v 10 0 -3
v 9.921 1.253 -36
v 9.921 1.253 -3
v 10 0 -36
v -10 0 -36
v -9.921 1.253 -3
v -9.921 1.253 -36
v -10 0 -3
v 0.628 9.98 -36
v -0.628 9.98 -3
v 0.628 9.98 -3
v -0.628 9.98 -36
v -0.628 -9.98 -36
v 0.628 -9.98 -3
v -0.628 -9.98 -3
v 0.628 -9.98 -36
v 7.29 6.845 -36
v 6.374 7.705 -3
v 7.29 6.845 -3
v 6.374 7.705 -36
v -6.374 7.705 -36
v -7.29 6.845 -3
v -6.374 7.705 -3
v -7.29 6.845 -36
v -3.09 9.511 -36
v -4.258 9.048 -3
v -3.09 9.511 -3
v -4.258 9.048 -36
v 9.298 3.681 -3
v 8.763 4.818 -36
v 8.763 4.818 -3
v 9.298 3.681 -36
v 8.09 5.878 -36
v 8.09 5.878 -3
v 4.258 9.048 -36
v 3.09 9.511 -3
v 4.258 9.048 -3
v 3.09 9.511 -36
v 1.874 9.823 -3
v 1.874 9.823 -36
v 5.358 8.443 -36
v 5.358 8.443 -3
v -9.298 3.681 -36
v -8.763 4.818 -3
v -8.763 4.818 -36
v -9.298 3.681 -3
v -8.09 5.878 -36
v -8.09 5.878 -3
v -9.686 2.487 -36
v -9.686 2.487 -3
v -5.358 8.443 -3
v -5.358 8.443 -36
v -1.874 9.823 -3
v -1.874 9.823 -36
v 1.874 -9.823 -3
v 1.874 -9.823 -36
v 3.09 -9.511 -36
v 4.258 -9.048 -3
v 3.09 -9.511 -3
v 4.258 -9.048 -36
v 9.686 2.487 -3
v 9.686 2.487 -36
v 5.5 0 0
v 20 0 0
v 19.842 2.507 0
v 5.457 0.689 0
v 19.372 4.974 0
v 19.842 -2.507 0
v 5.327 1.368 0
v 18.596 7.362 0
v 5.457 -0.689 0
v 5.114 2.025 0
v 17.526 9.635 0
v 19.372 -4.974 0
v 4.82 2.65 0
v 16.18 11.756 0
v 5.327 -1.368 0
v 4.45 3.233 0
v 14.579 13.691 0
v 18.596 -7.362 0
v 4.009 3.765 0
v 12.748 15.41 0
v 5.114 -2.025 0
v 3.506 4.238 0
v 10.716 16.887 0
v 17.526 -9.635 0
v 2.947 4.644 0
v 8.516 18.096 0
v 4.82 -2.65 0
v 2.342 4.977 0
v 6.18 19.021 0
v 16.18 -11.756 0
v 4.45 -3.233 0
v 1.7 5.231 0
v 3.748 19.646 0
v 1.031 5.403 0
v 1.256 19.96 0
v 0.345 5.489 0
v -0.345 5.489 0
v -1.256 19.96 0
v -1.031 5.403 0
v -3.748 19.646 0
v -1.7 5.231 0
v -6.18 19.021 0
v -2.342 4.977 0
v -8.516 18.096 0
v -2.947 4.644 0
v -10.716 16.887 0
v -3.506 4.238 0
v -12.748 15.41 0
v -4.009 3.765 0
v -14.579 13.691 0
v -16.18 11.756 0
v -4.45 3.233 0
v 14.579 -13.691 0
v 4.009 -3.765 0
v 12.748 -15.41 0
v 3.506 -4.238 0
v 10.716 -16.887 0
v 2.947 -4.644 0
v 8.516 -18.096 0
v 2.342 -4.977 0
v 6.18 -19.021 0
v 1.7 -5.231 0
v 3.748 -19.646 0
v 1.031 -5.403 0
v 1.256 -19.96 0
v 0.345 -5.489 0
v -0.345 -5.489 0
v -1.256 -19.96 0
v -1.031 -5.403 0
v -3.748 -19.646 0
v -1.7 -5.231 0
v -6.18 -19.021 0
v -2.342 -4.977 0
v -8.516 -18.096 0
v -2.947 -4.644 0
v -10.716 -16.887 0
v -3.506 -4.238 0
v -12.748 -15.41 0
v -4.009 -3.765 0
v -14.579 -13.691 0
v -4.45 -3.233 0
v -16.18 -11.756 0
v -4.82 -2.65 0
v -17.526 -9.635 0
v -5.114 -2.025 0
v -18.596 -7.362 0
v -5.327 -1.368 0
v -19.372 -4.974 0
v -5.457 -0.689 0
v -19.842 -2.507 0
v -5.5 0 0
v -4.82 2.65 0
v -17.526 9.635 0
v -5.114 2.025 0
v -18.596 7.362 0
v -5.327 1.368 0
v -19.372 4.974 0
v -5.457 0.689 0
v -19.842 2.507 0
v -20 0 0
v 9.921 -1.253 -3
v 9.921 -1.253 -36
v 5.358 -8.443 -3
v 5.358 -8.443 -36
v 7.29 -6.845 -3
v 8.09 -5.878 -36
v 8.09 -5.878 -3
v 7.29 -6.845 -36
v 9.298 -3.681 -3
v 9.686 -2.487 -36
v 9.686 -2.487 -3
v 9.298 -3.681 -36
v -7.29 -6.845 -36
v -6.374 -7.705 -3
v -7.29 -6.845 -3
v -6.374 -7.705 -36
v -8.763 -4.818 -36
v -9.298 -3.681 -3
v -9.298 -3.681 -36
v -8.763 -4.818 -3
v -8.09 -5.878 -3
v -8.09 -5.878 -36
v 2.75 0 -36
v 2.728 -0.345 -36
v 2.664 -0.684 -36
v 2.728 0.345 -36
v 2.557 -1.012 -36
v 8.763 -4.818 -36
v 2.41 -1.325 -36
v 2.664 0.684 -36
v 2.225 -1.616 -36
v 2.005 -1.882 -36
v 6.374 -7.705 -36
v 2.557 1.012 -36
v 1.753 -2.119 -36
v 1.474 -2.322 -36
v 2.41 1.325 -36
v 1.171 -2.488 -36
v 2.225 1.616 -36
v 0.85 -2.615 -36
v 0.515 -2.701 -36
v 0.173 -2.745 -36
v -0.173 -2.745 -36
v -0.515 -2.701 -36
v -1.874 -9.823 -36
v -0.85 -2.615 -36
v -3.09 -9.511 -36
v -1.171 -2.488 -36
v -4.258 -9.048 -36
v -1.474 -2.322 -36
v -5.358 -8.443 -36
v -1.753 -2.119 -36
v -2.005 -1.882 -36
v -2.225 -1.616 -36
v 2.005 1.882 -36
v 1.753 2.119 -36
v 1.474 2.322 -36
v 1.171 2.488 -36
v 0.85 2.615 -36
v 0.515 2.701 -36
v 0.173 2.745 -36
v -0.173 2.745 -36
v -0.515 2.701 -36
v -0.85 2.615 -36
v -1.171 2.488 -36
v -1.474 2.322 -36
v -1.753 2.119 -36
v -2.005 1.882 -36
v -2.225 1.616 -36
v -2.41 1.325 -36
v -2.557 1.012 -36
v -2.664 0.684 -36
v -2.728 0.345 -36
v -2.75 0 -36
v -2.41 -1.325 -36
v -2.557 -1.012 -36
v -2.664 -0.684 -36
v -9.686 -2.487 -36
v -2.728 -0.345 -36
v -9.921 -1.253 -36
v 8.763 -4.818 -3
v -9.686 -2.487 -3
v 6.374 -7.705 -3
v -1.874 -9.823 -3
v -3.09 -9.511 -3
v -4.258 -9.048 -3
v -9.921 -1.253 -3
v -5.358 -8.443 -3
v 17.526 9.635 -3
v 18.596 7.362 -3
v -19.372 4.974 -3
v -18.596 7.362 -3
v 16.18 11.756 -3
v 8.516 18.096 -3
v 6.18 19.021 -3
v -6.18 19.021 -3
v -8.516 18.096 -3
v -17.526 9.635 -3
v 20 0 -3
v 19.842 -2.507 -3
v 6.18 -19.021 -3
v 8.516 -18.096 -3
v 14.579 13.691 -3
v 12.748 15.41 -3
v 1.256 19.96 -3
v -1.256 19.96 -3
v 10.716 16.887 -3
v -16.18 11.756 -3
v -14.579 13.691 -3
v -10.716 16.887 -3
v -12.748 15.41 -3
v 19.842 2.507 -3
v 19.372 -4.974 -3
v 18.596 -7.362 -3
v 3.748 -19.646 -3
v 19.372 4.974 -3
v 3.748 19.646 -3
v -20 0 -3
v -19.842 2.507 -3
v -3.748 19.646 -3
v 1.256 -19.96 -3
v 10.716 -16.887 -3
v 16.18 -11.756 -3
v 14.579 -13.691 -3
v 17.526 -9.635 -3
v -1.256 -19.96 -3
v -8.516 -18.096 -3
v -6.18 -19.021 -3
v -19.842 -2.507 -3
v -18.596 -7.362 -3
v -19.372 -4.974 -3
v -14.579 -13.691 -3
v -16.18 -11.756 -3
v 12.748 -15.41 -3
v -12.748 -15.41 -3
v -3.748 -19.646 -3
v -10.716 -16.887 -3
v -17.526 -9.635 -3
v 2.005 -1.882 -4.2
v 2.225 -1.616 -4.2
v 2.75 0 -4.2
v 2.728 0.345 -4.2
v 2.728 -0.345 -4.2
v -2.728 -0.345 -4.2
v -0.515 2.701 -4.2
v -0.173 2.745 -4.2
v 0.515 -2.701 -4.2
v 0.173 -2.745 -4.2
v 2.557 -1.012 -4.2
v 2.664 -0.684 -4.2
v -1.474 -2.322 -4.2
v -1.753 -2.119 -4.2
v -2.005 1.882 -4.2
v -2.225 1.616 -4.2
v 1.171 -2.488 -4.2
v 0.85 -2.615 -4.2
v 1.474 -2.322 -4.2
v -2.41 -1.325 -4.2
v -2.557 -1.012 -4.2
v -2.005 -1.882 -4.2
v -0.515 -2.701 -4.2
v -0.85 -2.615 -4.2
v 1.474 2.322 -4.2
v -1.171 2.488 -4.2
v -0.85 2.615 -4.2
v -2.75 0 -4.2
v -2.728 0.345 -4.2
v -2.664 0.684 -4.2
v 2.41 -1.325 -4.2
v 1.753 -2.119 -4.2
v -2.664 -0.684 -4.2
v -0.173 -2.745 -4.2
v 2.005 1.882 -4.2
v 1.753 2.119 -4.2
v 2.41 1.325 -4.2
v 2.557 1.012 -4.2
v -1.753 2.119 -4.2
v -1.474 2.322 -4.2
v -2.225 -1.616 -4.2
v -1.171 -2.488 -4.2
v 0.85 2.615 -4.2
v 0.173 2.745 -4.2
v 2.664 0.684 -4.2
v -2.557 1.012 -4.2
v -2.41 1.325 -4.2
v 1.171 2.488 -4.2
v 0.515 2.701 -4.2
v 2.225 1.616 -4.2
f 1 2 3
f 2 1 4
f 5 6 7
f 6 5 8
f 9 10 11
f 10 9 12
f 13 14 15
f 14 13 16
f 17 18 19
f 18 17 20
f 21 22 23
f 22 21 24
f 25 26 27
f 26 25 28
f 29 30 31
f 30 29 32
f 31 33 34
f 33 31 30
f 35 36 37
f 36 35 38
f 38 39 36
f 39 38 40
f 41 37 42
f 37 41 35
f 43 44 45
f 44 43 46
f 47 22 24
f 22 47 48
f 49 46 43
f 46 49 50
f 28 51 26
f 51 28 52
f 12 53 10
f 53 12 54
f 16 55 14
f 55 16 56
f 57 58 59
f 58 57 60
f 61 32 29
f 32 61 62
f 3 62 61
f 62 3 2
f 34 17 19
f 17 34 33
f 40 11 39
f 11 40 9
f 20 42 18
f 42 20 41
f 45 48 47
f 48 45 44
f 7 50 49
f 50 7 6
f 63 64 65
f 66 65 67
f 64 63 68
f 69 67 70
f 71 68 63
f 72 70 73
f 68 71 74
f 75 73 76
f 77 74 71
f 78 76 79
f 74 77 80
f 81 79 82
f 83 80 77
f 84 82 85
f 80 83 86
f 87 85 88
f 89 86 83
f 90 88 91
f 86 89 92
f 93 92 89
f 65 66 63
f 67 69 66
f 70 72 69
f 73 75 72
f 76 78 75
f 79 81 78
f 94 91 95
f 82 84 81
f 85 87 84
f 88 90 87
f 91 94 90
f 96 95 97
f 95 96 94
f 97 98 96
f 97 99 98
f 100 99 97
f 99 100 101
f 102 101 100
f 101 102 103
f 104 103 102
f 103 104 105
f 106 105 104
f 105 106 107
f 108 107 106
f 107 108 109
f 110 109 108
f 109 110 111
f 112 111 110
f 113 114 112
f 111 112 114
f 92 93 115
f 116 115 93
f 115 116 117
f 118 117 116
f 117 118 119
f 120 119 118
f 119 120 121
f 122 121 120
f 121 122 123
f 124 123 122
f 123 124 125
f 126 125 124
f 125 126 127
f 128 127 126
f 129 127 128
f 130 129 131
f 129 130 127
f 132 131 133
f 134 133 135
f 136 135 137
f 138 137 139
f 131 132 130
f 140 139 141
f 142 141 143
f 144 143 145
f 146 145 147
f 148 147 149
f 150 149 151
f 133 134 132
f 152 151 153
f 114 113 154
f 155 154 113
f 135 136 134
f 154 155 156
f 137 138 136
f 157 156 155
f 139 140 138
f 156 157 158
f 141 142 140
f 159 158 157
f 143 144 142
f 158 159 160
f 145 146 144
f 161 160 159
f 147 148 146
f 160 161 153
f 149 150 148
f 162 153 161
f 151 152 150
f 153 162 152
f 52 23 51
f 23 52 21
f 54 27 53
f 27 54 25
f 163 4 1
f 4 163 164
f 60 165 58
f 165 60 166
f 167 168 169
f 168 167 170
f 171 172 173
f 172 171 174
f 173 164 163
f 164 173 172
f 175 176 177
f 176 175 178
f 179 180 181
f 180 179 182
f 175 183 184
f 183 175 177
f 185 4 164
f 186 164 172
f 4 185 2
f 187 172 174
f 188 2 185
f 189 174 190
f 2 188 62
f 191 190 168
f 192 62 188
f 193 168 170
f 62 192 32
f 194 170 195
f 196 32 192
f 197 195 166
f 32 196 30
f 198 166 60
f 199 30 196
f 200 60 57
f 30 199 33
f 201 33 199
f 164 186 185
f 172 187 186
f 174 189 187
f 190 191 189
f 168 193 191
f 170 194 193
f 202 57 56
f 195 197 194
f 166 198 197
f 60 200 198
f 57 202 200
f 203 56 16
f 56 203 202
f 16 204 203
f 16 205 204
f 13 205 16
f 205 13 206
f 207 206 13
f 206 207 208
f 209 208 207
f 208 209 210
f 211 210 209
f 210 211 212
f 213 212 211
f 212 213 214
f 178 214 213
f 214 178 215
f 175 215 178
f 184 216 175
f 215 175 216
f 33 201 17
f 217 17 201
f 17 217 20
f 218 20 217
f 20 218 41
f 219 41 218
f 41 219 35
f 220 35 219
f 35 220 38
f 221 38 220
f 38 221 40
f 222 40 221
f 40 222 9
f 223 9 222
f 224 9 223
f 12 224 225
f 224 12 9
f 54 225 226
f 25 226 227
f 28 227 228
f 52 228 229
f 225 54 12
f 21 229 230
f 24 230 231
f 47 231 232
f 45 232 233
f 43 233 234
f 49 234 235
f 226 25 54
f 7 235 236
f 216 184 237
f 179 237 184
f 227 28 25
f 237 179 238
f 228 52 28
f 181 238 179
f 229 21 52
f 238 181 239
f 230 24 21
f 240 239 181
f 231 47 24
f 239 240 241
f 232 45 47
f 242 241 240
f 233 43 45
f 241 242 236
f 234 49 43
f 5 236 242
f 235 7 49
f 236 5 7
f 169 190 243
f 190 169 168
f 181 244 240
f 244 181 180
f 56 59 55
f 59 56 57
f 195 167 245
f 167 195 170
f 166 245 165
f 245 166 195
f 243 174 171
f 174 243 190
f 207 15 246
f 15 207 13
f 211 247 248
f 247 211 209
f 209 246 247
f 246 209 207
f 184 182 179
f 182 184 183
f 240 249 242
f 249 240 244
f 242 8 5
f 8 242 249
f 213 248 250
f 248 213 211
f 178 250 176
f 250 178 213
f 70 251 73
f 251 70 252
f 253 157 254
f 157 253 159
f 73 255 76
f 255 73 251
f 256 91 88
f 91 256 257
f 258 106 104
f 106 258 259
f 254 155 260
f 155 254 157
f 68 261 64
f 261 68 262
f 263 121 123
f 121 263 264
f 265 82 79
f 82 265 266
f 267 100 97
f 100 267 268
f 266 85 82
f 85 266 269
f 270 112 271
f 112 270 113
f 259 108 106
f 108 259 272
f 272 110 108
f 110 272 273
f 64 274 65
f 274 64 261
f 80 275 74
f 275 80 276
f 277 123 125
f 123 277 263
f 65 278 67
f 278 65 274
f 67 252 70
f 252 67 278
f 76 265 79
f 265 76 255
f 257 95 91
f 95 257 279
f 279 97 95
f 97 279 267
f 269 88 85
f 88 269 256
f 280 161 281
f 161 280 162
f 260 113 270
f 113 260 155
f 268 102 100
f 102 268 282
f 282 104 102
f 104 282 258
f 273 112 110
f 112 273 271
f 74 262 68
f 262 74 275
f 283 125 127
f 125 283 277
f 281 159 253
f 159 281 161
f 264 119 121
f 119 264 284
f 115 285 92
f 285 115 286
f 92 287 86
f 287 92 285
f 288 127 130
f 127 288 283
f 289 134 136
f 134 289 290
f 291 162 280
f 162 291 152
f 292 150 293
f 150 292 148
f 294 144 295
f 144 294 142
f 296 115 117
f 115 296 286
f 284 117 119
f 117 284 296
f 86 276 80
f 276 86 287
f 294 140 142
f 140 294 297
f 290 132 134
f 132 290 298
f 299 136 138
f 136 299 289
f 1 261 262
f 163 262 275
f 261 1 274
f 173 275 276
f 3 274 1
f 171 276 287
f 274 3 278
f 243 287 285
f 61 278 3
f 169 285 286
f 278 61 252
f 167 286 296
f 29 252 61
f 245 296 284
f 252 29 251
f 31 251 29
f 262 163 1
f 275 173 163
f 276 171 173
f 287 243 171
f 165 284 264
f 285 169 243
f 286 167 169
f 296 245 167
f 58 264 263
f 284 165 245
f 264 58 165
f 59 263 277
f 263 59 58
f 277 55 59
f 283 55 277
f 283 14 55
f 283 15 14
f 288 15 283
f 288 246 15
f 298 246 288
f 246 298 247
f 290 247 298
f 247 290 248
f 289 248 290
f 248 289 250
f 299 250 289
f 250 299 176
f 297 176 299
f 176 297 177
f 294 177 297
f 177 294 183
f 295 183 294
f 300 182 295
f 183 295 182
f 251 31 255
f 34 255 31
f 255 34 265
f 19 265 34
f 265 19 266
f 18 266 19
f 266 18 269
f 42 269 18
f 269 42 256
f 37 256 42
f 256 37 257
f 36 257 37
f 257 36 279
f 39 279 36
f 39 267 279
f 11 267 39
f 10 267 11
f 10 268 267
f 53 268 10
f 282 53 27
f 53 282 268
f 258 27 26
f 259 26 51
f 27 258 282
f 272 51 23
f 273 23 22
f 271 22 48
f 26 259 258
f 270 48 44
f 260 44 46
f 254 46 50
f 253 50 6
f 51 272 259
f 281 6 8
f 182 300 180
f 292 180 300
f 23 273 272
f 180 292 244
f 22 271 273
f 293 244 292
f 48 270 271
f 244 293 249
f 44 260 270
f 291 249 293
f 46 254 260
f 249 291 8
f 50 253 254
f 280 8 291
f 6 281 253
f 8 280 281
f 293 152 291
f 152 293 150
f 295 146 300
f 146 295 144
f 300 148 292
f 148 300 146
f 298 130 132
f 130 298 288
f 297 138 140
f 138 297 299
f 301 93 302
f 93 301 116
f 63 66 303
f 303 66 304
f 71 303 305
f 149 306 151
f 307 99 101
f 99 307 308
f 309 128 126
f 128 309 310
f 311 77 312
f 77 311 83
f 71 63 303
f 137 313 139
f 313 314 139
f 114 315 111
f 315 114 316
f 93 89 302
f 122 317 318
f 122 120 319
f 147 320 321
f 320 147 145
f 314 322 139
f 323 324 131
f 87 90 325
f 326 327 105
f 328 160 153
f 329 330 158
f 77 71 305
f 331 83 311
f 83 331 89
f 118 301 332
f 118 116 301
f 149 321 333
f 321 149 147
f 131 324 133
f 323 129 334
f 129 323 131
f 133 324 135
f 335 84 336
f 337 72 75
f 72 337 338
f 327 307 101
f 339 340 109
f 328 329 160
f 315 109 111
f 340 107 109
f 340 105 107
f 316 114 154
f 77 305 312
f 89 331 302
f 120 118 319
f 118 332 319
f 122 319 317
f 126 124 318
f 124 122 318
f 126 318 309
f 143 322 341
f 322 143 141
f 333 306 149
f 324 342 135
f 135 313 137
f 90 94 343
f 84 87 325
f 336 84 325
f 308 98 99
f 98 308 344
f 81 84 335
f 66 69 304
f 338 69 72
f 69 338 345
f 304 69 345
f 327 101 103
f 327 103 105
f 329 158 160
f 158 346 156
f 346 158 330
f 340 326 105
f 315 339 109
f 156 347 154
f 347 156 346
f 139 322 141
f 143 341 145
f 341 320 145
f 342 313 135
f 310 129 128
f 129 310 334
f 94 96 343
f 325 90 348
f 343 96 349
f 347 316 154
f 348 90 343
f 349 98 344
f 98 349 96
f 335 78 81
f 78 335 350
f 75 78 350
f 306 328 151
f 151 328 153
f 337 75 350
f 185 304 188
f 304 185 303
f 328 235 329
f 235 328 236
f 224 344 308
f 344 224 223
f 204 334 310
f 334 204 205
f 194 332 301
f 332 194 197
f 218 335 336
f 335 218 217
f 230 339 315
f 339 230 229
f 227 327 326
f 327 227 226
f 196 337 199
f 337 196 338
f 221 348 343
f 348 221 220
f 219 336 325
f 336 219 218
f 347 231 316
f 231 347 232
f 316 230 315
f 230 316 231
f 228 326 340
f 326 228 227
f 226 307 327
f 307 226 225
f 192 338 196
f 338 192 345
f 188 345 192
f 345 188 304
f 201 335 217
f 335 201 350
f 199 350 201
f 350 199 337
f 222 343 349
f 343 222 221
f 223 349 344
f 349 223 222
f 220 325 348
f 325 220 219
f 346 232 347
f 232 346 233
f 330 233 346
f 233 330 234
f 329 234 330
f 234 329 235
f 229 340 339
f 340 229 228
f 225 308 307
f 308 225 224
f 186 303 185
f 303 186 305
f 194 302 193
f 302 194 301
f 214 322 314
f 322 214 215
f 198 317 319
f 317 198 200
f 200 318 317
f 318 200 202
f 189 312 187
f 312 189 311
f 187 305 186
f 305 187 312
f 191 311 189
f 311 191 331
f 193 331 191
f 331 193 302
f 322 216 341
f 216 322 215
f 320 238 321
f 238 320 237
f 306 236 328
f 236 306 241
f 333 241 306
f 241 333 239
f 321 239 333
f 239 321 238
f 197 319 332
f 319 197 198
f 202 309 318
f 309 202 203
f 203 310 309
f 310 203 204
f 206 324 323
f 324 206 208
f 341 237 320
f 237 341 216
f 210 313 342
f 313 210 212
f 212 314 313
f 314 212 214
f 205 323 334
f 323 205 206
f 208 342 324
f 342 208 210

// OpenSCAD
$fn = 50;


difference() {
	union() {
		translate(v = [0, 0, -36.0000000000]) {
			cylinder(h = 36, r = 10.0000000000);
		}
		translate(v = [0, 0, -3.0000000000]) {
			cylinder(h = 3, r = 20.0000000000);
		}
	}
	union() {
		translate(v = [0, 0, 0]) {
			rotate(a = [0, 0, 0]) {
				difference() {
					union() {
						#translate(v = [0, 0, -36.0000000000]) {
							cylinder(h = 36, r = 2.2500000000);
						}
						#translate(v = [0, 0, -4.2000000000]) {
							cylinder(h = 4.2000000000, r1 = 2.7500000000, r2 = 5.5000000000);
						}
						#translate(v = [0, 0, -36.0000000000]) {
							cylinder(h = 36, r = 2.7500000000);
						}
						#translate(v = [0, 0, -36.0000000000]) {
							cylinder(h = 36, r = 2.2500000000);
						}
					}
					union();
				}
			}
		}
	}
}
